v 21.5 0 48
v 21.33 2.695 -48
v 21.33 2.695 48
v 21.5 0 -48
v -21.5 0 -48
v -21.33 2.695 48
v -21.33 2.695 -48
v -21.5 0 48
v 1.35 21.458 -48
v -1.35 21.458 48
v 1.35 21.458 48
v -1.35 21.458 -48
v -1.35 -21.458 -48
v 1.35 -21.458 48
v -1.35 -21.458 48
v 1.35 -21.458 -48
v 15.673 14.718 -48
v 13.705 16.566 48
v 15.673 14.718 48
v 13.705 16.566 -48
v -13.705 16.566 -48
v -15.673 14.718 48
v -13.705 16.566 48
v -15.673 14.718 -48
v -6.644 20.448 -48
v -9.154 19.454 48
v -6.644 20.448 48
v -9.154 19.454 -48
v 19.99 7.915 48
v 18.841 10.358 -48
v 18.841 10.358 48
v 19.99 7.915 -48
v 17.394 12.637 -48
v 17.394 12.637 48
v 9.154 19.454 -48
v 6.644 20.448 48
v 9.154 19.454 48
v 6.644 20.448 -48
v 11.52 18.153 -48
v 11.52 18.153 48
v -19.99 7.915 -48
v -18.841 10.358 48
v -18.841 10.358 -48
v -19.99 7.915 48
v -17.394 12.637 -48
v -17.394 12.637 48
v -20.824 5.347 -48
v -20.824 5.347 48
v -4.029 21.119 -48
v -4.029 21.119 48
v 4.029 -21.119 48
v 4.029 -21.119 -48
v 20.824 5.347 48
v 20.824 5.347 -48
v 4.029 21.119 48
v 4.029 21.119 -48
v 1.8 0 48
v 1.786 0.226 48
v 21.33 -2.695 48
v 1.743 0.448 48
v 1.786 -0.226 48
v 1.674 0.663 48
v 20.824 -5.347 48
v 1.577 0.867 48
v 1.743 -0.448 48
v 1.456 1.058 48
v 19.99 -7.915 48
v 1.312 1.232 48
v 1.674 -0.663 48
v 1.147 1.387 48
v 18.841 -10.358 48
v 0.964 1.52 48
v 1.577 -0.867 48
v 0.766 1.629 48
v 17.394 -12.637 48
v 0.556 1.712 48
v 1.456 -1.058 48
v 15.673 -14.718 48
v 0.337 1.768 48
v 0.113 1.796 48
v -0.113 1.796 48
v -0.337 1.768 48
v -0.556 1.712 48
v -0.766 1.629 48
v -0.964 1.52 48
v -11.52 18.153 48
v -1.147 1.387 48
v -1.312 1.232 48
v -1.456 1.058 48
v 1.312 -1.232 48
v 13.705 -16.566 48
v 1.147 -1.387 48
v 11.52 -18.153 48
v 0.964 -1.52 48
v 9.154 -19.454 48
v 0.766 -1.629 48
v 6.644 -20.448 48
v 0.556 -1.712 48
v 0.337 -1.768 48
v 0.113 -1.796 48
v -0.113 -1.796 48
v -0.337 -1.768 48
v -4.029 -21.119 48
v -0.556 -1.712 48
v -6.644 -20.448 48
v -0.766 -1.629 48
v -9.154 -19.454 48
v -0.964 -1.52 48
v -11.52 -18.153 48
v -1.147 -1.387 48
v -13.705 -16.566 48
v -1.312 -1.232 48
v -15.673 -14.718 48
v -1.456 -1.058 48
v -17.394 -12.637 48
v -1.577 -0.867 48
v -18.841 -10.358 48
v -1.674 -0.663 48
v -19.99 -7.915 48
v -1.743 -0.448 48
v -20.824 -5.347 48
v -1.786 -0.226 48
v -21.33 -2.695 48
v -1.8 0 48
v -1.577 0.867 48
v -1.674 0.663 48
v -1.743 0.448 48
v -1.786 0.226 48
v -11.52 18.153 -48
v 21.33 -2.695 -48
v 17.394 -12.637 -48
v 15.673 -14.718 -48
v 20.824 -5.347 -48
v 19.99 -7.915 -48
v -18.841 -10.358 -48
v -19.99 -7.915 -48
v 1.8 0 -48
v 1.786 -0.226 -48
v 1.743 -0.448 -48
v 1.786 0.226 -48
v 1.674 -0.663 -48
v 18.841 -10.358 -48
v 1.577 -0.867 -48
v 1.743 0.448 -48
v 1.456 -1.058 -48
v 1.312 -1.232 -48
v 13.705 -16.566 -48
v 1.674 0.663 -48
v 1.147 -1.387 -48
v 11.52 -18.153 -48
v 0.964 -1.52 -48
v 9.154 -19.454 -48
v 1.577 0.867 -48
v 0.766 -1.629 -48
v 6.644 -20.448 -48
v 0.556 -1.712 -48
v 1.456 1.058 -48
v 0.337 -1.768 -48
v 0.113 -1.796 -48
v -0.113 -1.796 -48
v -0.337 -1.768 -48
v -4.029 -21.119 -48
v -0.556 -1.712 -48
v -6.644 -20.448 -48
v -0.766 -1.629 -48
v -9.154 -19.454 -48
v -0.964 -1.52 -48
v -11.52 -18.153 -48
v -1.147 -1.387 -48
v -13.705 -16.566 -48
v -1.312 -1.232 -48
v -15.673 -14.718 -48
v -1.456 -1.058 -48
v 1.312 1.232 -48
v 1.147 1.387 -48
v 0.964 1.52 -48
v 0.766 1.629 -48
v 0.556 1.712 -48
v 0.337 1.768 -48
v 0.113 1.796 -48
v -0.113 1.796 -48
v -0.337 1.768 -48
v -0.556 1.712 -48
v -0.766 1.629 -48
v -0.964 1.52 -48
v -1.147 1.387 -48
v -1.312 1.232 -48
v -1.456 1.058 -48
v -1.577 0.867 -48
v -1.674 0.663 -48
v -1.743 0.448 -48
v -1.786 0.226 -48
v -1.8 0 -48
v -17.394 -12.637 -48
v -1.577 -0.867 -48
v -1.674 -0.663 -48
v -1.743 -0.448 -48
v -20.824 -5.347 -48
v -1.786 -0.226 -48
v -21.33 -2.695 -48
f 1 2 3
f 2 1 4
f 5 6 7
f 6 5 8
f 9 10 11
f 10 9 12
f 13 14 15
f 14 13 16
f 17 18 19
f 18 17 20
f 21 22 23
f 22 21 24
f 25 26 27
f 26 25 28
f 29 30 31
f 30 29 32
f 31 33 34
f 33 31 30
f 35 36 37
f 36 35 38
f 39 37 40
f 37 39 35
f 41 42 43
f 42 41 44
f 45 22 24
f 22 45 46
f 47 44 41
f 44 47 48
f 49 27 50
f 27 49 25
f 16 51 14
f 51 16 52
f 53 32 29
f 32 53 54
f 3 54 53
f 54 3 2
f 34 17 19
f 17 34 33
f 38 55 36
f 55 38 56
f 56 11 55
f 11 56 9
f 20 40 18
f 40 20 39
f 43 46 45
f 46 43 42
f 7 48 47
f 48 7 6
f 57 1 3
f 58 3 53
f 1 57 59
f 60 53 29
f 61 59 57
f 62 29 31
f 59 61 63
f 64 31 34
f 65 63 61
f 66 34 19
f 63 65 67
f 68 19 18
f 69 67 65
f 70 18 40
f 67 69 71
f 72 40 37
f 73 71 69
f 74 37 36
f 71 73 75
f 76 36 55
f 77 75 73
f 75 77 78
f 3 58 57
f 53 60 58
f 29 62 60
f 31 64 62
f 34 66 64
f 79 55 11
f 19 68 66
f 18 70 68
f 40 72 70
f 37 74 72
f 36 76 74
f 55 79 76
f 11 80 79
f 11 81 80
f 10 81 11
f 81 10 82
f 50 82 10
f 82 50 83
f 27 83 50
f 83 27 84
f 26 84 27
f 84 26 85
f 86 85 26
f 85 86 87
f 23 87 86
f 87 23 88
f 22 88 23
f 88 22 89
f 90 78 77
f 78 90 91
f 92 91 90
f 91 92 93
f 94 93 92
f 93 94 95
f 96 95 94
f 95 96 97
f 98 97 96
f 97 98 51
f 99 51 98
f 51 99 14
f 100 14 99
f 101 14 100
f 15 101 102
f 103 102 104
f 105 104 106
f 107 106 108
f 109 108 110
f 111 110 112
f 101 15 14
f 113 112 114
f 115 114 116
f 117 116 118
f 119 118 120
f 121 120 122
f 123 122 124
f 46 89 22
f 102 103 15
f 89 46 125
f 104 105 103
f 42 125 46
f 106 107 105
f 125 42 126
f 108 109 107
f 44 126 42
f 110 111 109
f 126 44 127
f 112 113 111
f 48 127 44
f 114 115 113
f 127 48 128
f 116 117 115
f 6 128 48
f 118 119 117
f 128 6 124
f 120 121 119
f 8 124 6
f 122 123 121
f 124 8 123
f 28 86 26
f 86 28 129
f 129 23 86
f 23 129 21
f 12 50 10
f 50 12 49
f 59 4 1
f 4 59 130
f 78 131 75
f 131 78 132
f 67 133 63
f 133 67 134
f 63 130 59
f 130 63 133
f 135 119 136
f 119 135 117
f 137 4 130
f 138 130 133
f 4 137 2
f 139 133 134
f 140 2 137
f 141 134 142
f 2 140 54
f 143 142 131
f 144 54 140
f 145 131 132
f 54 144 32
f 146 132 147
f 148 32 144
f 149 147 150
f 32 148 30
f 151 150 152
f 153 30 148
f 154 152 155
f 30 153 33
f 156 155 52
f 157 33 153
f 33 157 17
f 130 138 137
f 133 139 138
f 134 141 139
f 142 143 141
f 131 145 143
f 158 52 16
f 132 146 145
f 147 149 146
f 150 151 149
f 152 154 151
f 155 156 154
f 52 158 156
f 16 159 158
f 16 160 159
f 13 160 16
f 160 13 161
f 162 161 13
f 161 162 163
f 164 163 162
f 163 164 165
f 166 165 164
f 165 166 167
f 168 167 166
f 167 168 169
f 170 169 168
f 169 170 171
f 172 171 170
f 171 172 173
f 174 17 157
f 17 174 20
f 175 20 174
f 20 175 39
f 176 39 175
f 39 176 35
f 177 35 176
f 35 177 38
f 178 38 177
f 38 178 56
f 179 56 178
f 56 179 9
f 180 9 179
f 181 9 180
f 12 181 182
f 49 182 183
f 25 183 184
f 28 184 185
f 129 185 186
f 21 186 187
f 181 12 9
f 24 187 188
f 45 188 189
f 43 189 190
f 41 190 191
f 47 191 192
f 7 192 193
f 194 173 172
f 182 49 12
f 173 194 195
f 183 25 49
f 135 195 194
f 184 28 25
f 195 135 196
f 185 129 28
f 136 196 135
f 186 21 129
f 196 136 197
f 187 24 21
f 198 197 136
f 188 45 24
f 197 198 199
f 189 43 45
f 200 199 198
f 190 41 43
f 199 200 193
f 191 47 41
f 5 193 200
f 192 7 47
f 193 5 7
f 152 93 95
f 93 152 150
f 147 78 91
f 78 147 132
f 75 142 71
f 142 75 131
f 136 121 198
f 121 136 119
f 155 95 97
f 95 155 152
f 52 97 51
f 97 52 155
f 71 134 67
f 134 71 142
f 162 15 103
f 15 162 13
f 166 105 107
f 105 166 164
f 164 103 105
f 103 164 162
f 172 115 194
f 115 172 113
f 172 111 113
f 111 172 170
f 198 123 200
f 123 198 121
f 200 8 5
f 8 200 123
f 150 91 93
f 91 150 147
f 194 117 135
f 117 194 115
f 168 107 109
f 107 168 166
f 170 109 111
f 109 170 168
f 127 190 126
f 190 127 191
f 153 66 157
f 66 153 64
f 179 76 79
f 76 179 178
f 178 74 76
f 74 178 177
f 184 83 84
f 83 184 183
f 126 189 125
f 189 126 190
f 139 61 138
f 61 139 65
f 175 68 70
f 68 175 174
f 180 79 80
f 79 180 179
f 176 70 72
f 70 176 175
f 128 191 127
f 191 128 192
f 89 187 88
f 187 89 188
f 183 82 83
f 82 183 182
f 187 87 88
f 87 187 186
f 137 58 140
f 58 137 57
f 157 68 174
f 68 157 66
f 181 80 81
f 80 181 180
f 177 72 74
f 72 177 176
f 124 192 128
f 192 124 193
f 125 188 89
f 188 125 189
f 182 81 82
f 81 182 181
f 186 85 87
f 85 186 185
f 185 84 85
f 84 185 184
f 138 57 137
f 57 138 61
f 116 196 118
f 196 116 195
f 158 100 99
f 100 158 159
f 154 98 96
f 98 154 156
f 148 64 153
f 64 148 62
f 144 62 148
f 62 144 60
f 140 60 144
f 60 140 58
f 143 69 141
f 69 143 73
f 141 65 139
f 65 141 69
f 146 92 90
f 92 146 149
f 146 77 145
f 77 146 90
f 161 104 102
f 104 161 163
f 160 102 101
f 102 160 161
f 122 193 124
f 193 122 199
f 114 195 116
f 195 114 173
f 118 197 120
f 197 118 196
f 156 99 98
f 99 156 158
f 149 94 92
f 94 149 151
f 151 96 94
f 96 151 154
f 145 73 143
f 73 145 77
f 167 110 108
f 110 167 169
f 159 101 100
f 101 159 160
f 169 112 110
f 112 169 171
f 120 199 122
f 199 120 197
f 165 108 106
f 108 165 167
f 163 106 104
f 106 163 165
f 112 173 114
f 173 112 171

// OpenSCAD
$fn = 50;


difference() {
	union() {
		translate(v = [0, 0, -48.0000000000]) {
			cylinder(h = 96, r = 21.5000000000);
		}
	}
	union() {
		translate(v = [0, 0, -100.0000000000]) {
			cylinder(h = 200, r = 1.8000000000);
		}
	}
}
